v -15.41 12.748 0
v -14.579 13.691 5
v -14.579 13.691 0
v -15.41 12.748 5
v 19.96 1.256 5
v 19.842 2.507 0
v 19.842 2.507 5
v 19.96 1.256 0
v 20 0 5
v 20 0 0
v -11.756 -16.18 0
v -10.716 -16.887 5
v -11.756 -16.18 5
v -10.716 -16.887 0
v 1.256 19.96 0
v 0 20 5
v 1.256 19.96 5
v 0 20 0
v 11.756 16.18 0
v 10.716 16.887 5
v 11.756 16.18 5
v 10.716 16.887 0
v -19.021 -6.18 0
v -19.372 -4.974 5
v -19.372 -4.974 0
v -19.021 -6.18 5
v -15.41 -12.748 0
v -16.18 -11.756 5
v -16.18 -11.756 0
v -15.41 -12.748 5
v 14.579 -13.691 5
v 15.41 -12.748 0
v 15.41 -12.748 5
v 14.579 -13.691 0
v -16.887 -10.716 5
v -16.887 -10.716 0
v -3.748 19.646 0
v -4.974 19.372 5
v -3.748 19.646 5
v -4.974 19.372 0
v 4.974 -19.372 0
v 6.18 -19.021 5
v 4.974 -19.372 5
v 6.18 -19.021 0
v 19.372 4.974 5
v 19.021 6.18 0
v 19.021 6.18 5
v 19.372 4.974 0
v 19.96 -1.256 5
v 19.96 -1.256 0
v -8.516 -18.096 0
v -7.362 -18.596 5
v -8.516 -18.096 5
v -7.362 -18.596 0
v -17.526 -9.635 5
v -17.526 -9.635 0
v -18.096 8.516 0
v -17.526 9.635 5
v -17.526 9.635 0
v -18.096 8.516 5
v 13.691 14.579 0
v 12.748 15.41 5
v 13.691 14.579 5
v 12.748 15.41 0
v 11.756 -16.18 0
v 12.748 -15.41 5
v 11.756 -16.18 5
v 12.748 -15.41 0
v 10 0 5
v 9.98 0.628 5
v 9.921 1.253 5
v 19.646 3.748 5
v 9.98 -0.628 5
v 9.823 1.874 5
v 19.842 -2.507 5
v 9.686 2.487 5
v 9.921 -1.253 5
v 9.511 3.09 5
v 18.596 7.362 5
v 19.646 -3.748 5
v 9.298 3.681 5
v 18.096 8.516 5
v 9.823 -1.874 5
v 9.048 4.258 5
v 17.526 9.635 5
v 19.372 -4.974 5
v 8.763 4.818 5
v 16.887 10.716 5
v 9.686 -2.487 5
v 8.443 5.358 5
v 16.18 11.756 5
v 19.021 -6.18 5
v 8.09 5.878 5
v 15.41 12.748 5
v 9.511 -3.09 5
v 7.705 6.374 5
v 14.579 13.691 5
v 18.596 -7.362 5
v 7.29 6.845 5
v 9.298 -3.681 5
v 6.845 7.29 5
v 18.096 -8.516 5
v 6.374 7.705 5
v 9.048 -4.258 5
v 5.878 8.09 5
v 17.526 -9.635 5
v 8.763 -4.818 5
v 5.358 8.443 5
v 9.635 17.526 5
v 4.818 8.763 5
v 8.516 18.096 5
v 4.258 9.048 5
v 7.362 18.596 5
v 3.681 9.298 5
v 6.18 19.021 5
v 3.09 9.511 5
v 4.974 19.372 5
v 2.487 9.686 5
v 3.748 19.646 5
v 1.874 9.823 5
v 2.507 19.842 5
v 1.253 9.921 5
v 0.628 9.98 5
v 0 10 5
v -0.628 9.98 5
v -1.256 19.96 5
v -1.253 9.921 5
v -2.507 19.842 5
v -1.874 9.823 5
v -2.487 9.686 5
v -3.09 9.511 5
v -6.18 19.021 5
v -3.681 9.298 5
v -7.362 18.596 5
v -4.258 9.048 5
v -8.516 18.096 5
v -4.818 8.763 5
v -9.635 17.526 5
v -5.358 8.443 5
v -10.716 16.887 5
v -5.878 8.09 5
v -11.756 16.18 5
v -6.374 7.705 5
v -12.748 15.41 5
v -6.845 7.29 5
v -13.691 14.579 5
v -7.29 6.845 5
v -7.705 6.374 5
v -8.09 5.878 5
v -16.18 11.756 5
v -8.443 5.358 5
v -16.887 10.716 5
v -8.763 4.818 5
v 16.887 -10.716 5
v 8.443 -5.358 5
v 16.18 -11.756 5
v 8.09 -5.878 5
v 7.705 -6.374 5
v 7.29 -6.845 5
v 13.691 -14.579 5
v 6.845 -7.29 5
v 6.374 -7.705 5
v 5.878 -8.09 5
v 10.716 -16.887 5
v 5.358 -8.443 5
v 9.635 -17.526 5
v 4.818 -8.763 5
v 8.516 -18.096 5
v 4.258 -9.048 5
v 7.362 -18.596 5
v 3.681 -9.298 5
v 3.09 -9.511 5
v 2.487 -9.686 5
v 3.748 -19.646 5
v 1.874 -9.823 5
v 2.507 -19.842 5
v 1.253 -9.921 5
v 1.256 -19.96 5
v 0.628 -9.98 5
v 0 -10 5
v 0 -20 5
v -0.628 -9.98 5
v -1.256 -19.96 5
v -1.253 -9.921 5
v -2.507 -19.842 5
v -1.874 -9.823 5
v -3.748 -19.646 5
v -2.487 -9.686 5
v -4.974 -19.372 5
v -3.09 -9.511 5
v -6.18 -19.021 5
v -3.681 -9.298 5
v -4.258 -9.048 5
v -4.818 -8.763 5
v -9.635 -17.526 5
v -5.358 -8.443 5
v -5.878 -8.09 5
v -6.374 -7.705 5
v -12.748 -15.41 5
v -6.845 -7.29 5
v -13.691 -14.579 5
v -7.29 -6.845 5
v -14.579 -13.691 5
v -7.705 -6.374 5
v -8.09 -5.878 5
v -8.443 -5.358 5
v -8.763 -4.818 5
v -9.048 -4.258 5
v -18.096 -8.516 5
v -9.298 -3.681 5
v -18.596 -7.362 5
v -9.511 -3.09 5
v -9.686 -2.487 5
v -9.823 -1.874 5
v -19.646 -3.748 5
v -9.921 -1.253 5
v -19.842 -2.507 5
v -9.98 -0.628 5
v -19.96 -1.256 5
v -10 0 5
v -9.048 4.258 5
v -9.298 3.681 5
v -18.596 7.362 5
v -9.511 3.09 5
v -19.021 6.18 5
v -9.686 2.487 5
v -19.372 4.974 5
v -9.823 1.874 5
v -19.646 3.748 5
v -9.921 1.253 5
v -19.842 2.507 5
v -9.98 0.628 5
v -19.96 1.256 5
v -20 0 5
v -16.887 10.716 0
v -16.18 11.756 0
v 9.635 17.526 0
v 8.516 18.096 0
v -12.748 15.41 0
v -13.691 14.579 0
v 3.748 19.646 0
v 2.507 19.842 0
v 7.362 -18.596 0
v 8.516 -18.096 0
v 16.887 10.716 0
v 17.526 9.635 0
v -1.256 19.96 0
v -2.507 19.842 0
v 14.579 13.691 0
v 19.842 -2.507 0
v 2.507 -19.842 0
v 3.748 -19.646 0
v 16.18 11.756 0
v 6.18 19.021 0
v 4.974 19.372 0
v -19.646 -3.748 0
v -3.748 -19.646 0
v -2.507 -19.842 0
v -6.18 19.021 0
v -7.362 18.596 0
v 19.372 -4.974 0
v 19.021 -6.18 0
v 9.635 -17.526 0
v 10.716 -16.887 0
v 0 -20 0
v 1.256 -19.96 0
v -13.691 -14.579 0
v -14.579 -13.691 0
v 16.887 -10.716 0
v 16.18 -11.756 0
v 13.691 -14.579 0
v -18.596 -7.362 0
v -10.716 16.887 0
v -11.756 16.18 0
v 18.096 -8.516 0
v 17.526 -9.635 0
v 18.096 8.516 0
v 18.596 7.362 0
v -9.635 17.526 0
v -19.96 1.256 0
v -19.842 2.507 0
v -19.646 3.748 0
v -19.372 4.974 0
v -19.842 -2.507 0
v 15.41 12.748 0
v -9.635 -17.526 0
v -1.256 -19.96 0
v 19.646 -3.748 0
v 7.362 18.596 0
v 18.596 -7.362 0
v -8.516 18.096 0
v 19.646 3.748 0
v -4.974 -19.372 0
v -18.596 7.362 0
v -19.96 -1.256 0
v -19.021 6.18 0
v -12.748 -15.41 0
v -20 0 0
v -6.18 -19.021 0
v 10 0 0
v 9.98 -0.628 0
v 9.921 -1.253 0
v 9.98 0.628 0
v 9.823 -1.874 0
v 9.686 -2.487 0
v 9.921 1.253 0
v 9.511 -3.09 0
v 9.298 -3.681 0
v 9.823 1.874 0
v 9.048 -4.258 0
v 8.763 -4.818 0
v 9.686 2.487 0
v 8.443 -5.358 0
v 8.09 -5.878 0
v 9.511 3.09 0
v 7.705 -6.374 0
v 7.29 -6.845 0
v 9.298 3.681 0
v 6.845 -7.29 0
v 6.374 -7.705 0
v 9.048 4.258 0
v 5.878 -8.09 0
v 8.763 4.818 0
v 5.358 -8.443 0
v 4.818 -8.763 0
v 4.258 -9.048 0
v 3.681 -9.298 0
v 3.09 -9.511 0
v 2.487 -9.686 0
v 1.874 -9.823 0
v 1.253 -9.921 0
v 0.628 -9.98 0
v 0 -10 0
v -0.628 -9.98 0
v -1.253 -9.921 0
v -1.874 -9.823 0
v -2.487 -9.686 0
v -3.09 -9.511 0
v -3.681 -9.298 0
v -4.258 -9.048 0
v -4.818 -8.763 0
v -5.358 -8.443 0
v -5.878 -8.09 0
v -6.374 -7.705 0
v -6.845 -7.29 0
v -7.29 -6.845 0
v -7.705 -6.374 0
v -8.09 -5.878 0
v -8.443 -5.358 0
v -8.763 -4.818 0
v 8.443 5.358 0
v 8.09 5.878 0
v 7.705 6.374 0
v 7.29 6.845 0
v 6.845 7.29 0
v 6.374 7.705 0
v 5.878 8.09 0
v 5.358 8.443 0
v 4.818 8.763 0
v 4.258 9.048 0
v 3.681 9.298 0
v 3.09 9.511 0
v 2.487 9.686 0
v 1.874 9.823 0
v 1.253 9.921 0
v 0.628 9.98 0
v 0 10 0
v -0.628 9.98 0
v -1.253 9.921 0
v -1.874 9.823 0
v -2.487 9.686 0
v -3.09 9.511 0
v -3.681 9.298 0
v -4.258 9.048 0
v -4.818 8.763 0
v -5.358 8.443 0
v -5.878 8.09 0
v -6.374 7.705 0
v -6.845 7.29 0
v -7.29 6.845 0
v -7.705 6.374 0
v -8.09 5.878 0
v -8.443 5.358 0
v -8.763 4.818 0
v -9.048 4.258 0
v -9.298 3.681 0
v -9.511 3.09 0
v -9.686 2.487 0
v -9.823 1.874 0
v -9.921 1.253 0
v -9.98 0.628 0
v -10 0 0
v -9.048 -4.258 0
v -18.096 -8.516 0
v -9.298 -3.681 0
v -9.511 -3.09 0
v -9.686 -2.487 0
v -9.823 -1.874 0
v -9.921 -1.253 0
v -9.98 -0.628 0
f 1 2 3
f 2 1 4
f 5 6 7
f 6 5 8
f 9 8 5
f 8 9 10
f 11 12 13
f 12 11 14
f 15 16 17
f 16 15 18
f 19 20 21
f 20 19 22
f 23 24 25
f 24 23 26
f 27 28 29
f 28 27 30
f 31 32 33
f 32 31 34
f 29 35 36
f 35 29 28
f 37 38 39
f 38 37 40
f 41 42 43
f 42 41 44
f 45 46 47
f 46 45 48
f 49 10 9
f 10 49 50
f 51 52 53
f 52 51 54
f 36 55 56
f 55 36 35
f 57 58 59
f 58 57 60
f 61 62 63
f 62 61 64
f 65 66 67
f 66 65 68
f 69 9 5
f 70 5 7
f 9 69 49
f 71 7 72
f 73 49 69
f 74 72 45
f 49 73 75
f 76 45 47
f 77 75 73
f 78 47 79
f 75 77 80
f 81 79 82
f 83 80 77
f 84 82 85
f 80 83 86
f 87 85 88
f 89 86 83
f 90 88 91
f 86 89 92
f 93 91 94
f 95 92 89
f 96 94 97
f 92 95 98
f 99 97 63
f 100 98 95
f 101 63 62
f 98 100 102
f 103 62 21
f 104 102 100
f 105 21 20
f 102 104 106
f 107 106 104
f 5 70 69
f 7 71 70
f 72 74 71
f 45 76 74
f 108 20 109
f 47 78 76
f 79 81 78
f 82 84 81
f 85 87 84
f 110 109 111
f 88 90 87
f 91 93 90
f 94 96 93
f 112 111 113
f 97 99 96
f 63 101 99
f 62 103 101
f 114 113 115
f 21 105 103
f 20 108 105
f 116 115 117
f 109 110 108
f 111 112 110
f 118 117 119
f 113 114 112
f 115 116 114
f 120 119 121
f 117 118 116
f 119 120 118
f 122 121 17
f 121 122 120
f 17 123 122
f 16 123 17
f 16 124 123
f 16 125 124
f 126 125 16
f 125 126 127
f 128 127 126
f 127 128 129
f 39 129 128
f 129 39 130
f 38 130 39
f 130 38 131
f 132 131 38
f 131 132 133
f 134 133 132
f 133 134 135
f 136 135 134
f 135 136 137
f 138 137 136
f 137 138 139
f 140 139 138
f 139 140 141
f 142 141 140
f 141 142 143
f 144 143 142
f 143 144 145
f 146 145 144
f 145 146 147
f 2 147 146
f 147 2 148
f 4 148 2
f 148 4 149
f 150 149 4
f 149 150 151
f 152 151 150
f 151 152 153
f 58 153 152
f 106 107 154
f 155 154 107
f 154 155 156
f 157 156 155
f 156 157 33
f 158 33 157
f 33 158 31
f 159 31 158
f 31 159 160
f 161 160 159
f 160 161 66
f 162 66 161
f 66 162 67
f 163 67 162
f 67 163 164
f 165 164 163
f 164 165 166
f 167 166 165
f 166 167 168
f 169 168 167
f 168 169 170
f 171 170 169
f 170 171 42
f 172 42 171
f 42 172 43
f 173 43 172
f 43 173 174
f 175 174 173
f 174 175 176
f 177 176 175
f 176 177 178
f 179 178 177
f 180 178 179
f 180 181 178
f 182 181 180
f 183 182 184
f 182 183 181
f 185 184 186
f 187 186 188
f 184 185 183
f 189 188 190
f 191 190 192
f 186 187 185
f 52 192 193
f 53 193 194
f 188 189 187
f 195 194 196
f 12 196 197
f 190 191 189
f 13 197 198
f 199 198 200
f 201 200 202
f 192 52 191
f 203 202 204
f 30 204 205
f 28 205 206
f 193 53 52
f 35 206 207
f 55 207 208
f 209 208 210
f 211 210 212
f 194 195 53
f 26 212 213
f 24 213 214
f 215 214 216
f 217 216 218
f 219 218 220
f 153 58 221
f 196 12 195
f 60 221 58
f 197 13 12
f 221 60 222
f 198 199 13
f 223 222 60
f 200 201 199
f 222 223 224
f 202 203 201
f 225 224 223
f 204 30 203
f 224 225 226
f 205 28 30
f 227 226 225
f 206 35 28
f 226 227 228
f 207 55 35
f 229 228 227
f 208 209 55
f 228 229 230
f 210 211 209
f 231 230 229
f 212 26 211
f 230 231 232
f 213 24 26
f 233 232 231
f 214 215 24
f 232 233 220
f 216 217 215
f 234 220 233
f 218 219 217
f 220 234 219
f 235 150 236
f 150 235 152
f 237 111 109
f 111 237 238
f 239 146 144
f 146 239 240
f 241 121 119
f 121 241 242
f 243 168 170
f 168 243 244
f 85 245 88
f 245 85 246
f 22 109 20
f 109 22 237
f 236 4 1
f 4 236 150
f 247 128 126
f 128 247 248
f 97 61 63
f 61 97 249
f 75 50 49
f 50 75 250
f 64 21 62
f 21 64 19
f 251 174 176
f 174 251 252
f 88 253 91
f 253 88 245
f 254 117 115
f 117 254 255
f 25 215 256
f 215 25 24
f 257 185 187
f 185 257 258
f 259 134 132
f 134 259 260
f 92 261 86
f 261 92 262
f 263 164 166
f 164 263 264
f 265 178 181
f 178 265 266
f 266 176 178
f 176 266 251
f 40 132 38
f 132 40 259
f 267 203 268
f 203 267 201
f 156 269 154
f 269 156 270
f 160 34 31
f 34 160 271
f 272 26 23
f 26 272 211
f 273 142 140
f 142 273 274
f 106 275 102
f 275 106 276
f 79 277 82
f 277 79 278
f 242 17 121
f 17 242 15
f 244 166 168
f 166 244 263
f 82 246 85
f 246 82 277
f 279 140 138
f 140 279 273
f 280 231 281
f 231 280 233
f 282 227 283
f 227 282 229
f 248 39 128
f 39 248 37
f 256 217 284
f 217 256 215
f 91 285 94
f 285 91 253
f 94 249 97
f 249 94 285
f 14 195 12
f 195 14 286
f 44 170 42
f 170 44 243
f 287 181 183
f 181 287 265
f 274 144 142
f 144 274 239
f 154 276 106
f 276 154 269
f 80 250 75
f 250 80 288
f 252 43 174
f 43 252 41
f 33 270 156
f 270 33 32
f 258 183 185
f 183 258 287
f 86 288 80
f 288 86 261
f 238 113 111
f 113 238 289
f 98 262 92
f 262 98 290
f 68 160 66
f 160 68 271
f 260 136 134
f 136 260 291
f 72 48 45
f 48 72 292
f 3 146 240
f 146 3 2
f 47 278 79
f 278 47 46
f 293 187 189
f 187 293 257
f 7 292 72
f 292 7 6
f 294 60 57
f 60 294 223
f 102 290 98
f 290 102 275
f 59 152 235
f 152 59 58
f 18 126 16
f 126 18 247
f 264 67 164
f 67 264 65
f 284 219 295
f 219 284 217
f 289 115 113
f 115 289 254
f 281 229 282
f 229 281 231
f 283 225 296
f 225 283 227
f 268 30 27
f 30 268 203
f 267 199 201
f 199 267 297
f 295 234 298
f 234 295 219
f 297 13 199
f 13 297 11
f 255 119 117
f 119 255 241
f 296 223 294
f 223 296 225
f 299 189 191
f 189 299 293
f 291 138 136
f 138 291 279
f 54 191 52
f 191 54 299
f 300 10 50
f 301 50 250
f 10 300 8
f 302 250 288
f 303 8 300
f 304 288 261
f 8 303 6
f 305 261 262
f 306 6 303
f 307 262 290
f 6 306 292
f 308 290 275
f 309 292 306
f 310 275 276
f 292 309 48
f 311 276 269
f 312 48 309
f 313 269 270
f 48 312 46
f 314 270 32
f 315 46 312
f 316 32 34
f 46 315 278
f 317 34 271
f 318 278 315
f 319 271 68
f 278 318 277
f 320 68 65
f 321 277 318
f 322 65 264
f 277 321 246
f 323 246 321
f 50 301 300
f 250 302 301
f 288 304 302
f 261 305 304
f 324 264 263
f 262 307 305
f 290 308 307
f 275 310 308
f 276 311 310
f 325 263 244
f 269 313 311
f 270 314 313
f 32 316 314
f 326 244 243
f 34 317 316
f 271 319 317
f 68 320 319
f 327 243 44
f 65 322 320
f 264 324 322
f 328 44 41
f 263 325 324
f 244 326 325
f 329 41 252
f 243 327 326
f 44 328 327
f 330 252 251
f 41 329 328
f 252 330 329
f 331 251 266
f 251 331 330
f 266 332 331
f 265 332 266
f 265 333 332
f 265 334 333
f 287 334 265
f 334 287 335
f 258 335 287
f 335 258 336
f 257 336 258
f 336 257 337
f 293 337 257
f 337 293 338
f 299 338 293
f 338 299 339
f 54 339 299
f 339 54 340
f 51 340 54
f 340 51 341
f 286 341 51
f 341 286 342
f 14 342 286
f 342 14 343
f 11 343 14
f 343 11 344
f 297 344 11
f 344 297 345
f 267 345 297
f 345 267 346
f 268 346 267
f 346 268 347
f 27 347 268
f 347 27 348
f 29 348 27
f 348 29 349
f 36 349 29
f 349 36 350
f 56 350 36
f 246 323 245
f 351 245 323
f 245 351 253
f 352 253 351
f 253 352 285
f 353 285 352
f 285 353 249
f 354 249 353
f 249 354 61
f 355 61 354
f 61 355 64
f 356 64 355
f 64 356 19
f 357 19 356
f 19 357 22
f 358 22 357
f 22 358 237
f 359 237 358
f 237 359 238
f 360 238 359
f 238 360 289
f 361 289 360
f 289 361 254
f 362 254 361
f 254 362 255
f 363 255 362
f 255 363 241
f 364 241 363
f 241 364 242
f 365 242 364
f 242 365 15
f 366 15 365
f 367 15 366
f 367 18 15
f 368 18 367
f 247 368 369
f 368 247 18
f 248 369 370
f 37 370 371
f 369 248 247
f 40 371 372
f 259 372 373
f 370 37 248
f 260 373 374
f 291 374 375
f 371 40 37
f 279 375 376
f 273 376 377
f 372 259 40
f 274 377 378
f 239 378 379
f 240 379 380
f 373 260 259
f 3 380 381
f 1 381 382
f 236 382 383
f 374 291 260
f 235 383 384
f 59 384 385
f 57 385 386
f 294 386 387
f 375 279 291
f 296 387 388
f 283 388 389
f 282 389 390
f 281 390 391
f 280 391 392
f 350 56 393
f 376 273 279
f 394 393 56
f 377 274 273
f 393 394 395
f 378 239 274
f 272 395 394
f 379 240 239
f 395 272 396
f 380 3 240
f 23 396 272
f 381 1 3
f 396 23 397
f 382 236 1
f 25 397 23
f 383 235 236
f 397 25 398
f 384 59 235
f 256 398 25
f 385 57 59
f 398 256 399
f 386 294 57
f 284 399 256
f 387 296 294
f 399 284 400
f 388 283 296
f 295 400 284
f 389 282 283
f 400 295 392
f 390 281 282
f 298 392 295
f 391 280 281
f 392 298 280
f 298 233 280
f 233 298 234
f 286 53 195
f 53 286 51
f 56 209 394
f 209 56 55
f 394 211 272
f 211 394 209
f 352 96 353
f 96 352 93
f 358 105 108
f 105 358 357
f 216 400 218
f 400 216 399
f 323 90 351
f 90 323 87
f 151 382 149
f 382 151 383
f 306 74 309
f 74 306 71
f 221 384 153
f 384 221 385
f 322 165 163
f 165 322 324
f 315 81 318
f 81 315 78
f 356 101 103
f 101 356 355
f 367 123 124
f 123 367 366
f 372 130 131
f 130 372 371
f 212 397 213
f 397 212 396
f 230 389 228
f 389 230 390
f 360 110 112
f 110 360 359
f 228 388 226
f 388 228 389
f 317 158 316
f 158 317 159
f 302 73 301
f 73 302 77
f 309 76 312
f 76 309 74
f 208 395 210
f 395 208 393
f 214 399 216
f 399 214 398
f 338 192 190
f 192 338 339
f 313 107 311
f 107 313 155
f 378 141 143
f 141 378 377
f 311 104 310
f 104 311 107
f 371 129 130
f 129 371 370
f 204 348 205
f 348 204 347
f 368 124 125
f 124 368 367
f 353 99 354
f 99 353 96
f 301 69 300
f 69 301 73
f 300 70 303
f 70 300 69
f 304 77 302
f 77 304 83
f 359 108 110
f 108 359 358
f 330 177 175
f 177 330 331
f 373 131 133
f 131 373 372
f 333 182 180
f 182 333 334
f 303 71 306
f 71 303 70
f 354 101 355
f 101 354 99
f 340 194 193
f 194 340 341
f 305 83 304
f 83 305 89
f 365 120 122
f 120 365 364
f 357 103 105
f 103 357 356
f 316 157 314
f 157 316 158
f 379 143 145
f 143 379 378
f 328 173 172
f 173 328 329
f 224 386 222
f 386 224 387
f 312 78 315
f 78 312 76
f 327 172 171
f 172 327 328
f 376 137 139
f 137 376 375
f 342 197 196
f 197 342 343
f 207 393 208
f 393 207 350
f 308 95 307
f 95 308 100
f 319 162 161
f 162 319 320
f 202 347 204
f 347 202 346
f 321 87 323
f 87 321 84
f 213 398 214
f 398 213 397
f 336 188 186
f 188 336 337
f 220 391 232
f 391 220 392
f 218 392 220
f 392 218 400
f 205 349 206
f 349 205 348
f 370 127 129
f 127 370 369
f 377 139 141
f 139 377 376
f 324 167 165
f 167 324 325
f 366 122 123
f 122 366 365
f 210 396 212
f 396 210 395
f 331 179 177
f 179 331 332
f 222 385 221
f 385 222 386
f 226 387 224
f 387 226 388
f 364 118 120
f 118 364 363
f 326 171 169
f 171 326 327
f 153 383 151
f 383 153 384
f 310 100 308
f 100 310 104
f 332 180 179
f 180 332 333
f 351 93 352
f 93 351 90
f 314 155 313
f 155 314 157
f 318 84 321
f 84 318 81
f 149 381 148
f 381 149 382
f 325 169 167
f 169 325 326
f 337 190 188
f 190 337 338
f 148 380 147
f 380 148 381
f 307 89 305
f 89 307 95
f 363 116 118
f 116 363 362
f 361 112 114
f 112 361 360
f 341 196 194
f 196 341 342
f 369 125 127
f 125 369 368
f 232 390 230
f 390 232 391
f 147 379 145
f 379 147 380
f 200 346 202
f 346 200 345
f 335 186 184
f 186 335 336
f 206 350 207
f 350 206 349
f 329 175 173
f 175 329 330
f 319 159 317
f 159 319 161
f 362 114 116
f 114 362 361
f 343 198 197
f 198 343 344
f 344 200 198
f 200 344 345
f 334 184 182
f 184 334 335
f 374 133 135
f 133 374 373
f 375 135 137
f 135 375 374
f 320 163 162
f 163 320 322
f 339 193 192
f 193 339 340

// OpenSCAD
// Parameters for the spacer_ring
module spacer_ring() {
    difference() {
        // Outer cylinder
        cylinder(h = 5, r = 20, $fn = 100);
        // Inner hollow
        translate([0, 0, -1]) cylinder(h = 7, r = 10, $fn = 100);
    }
}

// Assemble the model
module assembly() {
    // Layer 1: Spacer Ring
    spacer_ring();
}

// Render the assembly
assembly();
